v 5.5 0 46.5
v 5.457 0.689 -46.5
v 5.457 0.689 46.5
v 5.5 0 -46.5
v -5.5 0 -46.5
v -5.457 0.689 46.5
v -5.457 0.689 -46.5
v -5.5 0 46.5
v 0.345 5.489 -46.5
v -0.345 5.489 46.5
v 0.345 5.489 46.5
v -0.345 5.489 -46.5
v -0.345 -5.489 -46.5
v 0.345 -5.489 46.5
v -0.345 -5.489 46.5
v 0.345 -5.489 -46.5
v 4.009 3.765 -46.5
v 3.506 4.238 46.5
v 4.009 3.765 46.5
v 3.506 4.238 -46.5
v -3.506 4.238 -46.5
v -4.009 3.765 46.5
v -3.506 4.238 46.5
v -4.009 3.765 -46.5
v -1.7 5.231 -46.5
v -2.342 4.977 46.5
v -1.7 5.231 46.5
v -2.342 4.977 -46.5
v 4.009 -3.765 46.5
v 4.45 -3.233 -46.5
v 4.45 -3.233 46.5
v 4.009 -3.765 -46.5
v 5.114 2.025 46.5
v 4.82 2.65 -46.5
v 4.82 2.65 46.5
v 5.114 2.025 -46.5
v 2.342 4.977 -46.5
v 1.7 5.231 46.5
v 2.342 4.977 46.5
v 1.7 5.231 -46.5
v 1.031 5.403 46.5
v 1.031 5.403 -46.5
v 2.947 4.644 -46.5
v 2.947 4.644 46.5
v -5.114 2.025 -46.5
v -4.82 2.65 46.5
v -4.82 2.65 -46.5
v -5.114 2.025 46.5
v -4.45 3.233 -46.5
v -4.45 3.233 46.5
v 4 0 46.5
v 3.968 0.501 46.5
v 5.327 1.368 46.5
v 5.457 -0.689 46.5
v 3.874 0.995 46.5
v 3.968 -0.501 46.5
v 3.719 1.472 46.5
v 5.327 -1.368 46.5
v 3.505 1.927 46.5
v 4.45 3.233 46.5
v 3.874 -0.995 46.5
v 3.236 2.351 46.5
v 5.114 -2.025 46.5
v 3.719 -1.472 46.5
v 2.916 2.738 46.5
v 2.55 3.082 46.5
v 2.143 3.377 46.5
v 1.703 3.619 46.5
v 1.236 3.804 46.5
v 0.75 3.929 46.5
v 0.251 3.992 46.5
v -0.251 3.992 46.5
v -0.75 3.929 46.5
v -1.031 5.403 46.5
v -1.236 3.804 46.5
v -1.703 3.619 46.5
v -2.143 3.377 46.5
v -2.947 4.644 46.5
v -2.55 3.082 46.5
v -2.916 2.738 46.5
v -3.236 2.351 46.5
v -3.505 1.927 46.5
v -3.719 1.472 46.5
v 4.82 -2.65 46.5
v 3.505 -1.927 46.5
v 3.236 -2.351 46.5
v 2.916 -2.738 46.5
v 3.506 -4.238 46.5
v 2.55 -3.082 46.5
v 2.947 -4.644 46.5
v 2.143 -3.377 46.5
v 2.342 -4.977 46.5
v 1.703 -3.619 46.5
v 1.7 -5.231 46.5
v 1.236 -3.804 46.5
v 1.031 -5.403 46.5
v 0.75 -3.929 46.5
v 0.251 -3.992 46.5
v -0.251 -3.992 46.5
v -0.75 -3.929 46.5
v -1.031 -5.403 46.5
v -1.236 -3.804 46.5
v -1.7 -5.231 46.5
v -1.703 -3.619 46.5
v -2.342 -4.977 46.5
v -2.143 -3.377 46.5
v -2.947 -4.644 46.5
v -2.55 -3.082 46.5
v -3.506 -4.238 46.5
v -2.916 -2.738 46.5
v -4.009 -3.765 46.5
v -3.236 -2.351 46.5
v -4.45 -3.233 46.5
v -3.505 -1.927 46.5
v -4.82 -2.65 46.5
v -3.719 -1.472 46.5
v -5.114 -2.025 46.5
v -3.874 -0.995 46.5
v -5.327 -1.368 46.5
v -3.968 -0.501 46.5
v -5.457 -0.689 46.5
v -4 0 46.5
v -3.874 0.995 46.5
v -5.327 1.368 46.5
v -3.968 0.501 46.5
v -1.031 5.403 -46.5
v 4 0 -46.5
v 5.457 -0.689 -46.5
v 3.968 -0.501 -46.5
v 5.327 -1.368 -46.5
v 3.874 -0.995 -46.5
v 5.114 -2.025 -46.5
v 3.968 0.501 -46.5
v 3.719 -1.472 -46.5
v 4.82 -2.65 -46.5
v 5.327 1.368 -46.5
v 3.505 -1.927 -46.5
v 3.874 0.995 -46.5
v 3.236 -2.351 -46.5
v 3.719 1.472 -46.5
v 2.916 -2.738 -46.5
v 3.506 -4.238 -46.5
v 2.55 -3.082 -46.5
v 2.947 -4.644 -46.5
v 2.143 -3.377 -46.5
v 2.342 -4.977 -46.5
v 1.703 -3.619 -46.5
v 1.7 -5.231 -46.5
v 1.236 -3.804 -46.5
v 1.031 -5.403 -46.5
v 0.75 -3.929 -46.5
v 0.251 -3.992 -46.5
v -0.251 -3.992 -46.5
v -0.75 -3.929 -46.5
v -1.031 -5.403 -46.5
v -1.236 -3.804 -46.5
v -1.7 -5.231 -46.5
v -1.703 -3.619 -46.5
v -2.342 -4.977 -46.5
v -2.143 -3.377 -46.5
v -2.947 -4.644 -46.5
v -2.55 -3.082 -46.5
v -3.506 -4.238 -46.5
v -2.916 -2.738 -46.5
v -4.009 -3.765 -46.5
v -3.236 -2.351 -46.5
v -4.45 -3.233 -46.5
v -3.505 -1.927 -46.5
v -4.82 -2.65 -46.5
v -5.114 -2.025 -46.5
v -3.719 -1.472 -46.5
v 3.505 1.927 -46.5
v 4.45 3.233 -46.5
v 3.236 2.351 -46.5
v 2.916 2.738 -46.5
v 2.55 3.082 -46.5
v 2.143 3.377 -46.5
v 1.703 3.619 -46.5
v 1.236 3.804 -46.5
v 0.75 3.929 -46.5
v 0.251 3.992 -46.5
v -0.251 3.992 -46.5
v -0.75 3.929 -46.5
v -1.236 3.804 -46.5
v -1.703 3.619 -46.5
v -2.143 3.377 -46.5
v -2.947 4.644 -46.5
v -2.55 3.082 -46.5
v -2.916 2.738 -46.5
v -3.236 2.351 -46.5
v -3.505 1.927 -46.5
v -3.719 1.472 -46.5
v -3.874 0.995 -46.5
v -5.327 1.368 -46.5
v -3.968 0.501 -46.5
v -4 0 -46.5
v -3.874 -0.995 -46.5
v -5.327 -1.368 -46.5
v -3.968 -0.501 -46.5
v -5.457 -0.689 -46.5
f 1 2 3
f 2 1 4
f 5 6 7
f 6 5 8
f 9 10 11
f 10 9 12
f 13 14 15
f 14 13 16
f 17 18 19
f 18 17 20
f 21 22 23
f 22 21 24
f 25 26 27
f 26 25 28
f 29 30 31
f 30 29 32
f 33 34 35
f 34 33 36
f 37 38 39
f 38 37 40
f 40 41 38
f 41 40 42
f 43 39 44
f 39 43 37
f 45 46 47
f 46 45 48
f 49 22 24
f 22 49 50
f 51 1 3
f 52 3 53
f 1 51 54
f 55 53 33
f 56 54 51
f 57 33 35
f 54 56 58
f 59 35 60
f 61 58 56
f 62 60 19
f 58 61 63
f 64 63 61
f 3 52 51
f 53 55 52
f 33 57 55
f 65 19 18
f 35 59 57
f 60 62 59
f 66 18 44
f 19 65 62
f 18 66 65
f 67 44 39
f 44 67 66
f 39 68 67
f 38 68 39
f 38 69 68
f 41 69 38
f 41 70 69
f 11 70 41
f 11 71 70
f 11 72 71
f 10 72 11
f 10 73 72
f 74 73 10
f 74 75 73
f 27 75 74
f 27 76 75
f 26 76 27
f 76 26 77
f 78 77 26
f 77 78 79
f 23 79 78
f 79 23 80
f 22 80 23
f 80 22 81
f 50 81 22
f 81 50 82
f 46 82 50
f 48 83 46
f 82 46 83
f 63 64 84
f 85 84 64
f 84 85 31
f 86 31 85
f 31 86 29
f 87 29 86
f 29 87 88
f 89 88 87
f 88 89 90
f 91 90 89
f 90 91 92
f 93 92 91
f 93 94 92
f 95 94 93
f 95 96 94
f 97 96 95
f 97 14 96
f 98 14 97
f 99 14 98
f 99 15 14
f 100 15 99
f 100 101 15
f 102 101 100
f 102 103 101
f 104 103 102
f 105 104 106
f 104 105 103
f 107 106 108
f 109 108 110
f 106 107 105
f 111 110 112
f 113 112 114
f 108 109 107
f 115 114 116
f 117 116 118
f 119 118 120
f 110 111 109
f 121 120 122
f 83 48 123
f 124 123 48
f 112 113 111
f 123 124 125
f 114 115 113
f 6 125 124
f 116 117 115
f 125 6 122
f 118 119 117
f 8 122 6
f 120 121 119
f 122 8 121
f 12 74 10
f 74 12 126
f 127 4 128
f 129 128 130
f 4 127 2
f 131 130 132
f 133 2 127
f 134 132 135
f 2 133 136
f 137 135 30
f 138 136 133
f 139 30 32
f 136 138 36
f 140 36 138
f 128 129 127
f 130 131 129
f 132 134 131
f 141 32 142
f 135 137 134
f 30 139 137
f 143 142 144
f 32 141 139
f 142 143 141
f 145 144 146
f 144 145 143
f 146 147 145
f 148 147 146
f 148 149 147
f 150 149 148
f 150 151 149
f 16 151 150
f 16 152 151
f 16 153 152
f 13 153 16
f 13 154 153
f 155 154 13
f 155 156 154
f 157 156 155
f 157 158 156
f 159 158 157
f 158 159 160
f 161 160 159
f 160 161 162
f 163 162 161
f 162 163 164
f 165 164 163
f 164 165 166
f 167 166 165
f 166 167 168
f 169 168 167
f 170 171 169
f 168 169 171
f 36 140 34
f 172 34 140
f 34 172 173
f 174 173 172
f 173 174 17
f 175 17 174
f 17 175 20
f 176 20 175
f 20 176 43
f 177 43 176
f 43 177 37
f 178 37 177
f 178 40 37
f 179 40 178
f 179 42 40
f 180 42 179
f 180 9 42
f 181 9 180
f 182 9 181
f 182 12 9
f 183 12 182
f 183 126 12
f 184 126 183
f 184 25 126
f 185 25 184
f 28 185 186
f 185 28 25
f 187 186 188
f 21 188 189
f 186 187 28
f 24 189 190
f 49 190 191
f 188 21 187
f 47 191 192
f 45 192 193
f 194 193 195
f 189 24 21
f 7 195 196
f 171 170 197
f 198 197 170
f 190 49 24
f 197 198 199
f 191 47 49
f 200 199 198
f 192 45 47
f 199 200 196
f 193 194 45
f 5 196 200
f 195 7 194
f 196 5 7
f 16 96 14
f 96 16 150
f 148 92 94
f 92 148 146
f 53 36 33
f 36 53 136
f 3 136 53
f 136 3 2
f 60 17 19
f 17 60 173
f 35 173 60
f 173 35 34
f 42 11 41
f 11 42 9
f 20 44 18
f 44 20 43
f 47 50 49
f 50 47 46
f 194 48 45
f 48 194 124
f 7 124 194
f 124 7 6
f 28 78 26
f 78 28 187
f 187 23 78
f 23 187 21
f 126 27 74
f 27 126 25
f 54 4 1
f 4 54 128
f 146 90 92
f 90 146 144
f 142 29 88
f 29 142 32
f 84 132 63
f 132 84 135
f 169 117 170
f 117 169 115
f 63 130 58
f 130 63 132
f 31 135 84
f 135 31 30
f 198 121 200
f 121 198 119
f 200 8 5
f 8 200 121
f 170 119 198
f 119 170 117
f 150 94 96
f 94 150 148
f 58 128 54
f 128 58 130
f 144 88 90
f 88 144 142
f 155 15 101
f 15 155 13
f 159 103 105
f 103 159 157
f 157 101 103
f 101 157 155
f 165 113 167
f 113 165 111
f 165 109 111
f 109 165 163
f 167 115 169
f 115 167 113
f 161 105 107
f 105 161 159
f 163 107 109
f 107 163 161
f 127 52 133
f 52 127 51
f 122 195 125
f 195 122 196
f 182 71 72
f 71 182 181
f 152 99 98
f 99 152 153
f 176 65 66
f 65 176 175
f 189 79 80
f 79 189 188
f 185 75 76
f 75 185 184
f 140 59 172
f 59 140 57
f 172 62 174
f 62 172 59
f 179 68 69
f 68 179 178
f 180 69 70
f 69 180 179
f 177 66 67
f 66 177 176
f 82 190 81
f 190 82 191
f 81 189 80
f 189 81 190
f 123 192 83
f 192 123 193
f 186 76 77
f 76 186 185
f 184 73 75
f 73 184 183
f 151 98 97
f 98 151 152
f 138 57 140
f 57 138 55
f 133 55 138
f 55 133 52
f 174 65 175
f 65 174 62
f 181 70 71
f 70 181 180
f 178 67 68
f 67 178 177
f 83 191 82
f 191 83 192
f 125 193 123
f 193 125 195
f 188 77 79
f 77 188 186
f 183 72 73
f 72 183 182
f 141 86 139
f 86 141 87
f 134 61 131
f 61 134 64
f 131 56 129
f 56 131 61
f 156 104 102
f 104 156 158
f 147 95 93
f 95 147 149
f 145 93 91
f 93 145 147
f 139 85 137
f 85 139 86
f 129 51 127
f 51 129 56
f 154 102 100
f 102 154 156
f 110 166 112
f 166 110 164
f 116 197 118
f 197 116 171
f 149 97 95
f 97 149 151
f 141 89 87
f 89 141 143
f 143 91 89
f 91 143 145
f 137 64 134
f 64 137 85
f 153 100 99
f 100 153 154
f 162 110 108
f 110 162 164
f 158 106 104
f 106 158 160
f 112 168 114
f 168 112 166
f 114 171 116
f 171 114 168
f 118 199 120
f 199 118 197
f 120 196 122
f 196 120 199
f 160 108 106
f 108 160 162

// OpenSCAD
$fn = 50;


difference() {
	union() {
		translate(v = [0, 0, -46.5000000000]) {
			cylinder(h = 93, r = 5.5000000000);
		}
	}
	union() {
		translate(v = [0, 0, -100.0000000000]) {
			cylinder(h = 200, r = 4);
		}
	}
}
